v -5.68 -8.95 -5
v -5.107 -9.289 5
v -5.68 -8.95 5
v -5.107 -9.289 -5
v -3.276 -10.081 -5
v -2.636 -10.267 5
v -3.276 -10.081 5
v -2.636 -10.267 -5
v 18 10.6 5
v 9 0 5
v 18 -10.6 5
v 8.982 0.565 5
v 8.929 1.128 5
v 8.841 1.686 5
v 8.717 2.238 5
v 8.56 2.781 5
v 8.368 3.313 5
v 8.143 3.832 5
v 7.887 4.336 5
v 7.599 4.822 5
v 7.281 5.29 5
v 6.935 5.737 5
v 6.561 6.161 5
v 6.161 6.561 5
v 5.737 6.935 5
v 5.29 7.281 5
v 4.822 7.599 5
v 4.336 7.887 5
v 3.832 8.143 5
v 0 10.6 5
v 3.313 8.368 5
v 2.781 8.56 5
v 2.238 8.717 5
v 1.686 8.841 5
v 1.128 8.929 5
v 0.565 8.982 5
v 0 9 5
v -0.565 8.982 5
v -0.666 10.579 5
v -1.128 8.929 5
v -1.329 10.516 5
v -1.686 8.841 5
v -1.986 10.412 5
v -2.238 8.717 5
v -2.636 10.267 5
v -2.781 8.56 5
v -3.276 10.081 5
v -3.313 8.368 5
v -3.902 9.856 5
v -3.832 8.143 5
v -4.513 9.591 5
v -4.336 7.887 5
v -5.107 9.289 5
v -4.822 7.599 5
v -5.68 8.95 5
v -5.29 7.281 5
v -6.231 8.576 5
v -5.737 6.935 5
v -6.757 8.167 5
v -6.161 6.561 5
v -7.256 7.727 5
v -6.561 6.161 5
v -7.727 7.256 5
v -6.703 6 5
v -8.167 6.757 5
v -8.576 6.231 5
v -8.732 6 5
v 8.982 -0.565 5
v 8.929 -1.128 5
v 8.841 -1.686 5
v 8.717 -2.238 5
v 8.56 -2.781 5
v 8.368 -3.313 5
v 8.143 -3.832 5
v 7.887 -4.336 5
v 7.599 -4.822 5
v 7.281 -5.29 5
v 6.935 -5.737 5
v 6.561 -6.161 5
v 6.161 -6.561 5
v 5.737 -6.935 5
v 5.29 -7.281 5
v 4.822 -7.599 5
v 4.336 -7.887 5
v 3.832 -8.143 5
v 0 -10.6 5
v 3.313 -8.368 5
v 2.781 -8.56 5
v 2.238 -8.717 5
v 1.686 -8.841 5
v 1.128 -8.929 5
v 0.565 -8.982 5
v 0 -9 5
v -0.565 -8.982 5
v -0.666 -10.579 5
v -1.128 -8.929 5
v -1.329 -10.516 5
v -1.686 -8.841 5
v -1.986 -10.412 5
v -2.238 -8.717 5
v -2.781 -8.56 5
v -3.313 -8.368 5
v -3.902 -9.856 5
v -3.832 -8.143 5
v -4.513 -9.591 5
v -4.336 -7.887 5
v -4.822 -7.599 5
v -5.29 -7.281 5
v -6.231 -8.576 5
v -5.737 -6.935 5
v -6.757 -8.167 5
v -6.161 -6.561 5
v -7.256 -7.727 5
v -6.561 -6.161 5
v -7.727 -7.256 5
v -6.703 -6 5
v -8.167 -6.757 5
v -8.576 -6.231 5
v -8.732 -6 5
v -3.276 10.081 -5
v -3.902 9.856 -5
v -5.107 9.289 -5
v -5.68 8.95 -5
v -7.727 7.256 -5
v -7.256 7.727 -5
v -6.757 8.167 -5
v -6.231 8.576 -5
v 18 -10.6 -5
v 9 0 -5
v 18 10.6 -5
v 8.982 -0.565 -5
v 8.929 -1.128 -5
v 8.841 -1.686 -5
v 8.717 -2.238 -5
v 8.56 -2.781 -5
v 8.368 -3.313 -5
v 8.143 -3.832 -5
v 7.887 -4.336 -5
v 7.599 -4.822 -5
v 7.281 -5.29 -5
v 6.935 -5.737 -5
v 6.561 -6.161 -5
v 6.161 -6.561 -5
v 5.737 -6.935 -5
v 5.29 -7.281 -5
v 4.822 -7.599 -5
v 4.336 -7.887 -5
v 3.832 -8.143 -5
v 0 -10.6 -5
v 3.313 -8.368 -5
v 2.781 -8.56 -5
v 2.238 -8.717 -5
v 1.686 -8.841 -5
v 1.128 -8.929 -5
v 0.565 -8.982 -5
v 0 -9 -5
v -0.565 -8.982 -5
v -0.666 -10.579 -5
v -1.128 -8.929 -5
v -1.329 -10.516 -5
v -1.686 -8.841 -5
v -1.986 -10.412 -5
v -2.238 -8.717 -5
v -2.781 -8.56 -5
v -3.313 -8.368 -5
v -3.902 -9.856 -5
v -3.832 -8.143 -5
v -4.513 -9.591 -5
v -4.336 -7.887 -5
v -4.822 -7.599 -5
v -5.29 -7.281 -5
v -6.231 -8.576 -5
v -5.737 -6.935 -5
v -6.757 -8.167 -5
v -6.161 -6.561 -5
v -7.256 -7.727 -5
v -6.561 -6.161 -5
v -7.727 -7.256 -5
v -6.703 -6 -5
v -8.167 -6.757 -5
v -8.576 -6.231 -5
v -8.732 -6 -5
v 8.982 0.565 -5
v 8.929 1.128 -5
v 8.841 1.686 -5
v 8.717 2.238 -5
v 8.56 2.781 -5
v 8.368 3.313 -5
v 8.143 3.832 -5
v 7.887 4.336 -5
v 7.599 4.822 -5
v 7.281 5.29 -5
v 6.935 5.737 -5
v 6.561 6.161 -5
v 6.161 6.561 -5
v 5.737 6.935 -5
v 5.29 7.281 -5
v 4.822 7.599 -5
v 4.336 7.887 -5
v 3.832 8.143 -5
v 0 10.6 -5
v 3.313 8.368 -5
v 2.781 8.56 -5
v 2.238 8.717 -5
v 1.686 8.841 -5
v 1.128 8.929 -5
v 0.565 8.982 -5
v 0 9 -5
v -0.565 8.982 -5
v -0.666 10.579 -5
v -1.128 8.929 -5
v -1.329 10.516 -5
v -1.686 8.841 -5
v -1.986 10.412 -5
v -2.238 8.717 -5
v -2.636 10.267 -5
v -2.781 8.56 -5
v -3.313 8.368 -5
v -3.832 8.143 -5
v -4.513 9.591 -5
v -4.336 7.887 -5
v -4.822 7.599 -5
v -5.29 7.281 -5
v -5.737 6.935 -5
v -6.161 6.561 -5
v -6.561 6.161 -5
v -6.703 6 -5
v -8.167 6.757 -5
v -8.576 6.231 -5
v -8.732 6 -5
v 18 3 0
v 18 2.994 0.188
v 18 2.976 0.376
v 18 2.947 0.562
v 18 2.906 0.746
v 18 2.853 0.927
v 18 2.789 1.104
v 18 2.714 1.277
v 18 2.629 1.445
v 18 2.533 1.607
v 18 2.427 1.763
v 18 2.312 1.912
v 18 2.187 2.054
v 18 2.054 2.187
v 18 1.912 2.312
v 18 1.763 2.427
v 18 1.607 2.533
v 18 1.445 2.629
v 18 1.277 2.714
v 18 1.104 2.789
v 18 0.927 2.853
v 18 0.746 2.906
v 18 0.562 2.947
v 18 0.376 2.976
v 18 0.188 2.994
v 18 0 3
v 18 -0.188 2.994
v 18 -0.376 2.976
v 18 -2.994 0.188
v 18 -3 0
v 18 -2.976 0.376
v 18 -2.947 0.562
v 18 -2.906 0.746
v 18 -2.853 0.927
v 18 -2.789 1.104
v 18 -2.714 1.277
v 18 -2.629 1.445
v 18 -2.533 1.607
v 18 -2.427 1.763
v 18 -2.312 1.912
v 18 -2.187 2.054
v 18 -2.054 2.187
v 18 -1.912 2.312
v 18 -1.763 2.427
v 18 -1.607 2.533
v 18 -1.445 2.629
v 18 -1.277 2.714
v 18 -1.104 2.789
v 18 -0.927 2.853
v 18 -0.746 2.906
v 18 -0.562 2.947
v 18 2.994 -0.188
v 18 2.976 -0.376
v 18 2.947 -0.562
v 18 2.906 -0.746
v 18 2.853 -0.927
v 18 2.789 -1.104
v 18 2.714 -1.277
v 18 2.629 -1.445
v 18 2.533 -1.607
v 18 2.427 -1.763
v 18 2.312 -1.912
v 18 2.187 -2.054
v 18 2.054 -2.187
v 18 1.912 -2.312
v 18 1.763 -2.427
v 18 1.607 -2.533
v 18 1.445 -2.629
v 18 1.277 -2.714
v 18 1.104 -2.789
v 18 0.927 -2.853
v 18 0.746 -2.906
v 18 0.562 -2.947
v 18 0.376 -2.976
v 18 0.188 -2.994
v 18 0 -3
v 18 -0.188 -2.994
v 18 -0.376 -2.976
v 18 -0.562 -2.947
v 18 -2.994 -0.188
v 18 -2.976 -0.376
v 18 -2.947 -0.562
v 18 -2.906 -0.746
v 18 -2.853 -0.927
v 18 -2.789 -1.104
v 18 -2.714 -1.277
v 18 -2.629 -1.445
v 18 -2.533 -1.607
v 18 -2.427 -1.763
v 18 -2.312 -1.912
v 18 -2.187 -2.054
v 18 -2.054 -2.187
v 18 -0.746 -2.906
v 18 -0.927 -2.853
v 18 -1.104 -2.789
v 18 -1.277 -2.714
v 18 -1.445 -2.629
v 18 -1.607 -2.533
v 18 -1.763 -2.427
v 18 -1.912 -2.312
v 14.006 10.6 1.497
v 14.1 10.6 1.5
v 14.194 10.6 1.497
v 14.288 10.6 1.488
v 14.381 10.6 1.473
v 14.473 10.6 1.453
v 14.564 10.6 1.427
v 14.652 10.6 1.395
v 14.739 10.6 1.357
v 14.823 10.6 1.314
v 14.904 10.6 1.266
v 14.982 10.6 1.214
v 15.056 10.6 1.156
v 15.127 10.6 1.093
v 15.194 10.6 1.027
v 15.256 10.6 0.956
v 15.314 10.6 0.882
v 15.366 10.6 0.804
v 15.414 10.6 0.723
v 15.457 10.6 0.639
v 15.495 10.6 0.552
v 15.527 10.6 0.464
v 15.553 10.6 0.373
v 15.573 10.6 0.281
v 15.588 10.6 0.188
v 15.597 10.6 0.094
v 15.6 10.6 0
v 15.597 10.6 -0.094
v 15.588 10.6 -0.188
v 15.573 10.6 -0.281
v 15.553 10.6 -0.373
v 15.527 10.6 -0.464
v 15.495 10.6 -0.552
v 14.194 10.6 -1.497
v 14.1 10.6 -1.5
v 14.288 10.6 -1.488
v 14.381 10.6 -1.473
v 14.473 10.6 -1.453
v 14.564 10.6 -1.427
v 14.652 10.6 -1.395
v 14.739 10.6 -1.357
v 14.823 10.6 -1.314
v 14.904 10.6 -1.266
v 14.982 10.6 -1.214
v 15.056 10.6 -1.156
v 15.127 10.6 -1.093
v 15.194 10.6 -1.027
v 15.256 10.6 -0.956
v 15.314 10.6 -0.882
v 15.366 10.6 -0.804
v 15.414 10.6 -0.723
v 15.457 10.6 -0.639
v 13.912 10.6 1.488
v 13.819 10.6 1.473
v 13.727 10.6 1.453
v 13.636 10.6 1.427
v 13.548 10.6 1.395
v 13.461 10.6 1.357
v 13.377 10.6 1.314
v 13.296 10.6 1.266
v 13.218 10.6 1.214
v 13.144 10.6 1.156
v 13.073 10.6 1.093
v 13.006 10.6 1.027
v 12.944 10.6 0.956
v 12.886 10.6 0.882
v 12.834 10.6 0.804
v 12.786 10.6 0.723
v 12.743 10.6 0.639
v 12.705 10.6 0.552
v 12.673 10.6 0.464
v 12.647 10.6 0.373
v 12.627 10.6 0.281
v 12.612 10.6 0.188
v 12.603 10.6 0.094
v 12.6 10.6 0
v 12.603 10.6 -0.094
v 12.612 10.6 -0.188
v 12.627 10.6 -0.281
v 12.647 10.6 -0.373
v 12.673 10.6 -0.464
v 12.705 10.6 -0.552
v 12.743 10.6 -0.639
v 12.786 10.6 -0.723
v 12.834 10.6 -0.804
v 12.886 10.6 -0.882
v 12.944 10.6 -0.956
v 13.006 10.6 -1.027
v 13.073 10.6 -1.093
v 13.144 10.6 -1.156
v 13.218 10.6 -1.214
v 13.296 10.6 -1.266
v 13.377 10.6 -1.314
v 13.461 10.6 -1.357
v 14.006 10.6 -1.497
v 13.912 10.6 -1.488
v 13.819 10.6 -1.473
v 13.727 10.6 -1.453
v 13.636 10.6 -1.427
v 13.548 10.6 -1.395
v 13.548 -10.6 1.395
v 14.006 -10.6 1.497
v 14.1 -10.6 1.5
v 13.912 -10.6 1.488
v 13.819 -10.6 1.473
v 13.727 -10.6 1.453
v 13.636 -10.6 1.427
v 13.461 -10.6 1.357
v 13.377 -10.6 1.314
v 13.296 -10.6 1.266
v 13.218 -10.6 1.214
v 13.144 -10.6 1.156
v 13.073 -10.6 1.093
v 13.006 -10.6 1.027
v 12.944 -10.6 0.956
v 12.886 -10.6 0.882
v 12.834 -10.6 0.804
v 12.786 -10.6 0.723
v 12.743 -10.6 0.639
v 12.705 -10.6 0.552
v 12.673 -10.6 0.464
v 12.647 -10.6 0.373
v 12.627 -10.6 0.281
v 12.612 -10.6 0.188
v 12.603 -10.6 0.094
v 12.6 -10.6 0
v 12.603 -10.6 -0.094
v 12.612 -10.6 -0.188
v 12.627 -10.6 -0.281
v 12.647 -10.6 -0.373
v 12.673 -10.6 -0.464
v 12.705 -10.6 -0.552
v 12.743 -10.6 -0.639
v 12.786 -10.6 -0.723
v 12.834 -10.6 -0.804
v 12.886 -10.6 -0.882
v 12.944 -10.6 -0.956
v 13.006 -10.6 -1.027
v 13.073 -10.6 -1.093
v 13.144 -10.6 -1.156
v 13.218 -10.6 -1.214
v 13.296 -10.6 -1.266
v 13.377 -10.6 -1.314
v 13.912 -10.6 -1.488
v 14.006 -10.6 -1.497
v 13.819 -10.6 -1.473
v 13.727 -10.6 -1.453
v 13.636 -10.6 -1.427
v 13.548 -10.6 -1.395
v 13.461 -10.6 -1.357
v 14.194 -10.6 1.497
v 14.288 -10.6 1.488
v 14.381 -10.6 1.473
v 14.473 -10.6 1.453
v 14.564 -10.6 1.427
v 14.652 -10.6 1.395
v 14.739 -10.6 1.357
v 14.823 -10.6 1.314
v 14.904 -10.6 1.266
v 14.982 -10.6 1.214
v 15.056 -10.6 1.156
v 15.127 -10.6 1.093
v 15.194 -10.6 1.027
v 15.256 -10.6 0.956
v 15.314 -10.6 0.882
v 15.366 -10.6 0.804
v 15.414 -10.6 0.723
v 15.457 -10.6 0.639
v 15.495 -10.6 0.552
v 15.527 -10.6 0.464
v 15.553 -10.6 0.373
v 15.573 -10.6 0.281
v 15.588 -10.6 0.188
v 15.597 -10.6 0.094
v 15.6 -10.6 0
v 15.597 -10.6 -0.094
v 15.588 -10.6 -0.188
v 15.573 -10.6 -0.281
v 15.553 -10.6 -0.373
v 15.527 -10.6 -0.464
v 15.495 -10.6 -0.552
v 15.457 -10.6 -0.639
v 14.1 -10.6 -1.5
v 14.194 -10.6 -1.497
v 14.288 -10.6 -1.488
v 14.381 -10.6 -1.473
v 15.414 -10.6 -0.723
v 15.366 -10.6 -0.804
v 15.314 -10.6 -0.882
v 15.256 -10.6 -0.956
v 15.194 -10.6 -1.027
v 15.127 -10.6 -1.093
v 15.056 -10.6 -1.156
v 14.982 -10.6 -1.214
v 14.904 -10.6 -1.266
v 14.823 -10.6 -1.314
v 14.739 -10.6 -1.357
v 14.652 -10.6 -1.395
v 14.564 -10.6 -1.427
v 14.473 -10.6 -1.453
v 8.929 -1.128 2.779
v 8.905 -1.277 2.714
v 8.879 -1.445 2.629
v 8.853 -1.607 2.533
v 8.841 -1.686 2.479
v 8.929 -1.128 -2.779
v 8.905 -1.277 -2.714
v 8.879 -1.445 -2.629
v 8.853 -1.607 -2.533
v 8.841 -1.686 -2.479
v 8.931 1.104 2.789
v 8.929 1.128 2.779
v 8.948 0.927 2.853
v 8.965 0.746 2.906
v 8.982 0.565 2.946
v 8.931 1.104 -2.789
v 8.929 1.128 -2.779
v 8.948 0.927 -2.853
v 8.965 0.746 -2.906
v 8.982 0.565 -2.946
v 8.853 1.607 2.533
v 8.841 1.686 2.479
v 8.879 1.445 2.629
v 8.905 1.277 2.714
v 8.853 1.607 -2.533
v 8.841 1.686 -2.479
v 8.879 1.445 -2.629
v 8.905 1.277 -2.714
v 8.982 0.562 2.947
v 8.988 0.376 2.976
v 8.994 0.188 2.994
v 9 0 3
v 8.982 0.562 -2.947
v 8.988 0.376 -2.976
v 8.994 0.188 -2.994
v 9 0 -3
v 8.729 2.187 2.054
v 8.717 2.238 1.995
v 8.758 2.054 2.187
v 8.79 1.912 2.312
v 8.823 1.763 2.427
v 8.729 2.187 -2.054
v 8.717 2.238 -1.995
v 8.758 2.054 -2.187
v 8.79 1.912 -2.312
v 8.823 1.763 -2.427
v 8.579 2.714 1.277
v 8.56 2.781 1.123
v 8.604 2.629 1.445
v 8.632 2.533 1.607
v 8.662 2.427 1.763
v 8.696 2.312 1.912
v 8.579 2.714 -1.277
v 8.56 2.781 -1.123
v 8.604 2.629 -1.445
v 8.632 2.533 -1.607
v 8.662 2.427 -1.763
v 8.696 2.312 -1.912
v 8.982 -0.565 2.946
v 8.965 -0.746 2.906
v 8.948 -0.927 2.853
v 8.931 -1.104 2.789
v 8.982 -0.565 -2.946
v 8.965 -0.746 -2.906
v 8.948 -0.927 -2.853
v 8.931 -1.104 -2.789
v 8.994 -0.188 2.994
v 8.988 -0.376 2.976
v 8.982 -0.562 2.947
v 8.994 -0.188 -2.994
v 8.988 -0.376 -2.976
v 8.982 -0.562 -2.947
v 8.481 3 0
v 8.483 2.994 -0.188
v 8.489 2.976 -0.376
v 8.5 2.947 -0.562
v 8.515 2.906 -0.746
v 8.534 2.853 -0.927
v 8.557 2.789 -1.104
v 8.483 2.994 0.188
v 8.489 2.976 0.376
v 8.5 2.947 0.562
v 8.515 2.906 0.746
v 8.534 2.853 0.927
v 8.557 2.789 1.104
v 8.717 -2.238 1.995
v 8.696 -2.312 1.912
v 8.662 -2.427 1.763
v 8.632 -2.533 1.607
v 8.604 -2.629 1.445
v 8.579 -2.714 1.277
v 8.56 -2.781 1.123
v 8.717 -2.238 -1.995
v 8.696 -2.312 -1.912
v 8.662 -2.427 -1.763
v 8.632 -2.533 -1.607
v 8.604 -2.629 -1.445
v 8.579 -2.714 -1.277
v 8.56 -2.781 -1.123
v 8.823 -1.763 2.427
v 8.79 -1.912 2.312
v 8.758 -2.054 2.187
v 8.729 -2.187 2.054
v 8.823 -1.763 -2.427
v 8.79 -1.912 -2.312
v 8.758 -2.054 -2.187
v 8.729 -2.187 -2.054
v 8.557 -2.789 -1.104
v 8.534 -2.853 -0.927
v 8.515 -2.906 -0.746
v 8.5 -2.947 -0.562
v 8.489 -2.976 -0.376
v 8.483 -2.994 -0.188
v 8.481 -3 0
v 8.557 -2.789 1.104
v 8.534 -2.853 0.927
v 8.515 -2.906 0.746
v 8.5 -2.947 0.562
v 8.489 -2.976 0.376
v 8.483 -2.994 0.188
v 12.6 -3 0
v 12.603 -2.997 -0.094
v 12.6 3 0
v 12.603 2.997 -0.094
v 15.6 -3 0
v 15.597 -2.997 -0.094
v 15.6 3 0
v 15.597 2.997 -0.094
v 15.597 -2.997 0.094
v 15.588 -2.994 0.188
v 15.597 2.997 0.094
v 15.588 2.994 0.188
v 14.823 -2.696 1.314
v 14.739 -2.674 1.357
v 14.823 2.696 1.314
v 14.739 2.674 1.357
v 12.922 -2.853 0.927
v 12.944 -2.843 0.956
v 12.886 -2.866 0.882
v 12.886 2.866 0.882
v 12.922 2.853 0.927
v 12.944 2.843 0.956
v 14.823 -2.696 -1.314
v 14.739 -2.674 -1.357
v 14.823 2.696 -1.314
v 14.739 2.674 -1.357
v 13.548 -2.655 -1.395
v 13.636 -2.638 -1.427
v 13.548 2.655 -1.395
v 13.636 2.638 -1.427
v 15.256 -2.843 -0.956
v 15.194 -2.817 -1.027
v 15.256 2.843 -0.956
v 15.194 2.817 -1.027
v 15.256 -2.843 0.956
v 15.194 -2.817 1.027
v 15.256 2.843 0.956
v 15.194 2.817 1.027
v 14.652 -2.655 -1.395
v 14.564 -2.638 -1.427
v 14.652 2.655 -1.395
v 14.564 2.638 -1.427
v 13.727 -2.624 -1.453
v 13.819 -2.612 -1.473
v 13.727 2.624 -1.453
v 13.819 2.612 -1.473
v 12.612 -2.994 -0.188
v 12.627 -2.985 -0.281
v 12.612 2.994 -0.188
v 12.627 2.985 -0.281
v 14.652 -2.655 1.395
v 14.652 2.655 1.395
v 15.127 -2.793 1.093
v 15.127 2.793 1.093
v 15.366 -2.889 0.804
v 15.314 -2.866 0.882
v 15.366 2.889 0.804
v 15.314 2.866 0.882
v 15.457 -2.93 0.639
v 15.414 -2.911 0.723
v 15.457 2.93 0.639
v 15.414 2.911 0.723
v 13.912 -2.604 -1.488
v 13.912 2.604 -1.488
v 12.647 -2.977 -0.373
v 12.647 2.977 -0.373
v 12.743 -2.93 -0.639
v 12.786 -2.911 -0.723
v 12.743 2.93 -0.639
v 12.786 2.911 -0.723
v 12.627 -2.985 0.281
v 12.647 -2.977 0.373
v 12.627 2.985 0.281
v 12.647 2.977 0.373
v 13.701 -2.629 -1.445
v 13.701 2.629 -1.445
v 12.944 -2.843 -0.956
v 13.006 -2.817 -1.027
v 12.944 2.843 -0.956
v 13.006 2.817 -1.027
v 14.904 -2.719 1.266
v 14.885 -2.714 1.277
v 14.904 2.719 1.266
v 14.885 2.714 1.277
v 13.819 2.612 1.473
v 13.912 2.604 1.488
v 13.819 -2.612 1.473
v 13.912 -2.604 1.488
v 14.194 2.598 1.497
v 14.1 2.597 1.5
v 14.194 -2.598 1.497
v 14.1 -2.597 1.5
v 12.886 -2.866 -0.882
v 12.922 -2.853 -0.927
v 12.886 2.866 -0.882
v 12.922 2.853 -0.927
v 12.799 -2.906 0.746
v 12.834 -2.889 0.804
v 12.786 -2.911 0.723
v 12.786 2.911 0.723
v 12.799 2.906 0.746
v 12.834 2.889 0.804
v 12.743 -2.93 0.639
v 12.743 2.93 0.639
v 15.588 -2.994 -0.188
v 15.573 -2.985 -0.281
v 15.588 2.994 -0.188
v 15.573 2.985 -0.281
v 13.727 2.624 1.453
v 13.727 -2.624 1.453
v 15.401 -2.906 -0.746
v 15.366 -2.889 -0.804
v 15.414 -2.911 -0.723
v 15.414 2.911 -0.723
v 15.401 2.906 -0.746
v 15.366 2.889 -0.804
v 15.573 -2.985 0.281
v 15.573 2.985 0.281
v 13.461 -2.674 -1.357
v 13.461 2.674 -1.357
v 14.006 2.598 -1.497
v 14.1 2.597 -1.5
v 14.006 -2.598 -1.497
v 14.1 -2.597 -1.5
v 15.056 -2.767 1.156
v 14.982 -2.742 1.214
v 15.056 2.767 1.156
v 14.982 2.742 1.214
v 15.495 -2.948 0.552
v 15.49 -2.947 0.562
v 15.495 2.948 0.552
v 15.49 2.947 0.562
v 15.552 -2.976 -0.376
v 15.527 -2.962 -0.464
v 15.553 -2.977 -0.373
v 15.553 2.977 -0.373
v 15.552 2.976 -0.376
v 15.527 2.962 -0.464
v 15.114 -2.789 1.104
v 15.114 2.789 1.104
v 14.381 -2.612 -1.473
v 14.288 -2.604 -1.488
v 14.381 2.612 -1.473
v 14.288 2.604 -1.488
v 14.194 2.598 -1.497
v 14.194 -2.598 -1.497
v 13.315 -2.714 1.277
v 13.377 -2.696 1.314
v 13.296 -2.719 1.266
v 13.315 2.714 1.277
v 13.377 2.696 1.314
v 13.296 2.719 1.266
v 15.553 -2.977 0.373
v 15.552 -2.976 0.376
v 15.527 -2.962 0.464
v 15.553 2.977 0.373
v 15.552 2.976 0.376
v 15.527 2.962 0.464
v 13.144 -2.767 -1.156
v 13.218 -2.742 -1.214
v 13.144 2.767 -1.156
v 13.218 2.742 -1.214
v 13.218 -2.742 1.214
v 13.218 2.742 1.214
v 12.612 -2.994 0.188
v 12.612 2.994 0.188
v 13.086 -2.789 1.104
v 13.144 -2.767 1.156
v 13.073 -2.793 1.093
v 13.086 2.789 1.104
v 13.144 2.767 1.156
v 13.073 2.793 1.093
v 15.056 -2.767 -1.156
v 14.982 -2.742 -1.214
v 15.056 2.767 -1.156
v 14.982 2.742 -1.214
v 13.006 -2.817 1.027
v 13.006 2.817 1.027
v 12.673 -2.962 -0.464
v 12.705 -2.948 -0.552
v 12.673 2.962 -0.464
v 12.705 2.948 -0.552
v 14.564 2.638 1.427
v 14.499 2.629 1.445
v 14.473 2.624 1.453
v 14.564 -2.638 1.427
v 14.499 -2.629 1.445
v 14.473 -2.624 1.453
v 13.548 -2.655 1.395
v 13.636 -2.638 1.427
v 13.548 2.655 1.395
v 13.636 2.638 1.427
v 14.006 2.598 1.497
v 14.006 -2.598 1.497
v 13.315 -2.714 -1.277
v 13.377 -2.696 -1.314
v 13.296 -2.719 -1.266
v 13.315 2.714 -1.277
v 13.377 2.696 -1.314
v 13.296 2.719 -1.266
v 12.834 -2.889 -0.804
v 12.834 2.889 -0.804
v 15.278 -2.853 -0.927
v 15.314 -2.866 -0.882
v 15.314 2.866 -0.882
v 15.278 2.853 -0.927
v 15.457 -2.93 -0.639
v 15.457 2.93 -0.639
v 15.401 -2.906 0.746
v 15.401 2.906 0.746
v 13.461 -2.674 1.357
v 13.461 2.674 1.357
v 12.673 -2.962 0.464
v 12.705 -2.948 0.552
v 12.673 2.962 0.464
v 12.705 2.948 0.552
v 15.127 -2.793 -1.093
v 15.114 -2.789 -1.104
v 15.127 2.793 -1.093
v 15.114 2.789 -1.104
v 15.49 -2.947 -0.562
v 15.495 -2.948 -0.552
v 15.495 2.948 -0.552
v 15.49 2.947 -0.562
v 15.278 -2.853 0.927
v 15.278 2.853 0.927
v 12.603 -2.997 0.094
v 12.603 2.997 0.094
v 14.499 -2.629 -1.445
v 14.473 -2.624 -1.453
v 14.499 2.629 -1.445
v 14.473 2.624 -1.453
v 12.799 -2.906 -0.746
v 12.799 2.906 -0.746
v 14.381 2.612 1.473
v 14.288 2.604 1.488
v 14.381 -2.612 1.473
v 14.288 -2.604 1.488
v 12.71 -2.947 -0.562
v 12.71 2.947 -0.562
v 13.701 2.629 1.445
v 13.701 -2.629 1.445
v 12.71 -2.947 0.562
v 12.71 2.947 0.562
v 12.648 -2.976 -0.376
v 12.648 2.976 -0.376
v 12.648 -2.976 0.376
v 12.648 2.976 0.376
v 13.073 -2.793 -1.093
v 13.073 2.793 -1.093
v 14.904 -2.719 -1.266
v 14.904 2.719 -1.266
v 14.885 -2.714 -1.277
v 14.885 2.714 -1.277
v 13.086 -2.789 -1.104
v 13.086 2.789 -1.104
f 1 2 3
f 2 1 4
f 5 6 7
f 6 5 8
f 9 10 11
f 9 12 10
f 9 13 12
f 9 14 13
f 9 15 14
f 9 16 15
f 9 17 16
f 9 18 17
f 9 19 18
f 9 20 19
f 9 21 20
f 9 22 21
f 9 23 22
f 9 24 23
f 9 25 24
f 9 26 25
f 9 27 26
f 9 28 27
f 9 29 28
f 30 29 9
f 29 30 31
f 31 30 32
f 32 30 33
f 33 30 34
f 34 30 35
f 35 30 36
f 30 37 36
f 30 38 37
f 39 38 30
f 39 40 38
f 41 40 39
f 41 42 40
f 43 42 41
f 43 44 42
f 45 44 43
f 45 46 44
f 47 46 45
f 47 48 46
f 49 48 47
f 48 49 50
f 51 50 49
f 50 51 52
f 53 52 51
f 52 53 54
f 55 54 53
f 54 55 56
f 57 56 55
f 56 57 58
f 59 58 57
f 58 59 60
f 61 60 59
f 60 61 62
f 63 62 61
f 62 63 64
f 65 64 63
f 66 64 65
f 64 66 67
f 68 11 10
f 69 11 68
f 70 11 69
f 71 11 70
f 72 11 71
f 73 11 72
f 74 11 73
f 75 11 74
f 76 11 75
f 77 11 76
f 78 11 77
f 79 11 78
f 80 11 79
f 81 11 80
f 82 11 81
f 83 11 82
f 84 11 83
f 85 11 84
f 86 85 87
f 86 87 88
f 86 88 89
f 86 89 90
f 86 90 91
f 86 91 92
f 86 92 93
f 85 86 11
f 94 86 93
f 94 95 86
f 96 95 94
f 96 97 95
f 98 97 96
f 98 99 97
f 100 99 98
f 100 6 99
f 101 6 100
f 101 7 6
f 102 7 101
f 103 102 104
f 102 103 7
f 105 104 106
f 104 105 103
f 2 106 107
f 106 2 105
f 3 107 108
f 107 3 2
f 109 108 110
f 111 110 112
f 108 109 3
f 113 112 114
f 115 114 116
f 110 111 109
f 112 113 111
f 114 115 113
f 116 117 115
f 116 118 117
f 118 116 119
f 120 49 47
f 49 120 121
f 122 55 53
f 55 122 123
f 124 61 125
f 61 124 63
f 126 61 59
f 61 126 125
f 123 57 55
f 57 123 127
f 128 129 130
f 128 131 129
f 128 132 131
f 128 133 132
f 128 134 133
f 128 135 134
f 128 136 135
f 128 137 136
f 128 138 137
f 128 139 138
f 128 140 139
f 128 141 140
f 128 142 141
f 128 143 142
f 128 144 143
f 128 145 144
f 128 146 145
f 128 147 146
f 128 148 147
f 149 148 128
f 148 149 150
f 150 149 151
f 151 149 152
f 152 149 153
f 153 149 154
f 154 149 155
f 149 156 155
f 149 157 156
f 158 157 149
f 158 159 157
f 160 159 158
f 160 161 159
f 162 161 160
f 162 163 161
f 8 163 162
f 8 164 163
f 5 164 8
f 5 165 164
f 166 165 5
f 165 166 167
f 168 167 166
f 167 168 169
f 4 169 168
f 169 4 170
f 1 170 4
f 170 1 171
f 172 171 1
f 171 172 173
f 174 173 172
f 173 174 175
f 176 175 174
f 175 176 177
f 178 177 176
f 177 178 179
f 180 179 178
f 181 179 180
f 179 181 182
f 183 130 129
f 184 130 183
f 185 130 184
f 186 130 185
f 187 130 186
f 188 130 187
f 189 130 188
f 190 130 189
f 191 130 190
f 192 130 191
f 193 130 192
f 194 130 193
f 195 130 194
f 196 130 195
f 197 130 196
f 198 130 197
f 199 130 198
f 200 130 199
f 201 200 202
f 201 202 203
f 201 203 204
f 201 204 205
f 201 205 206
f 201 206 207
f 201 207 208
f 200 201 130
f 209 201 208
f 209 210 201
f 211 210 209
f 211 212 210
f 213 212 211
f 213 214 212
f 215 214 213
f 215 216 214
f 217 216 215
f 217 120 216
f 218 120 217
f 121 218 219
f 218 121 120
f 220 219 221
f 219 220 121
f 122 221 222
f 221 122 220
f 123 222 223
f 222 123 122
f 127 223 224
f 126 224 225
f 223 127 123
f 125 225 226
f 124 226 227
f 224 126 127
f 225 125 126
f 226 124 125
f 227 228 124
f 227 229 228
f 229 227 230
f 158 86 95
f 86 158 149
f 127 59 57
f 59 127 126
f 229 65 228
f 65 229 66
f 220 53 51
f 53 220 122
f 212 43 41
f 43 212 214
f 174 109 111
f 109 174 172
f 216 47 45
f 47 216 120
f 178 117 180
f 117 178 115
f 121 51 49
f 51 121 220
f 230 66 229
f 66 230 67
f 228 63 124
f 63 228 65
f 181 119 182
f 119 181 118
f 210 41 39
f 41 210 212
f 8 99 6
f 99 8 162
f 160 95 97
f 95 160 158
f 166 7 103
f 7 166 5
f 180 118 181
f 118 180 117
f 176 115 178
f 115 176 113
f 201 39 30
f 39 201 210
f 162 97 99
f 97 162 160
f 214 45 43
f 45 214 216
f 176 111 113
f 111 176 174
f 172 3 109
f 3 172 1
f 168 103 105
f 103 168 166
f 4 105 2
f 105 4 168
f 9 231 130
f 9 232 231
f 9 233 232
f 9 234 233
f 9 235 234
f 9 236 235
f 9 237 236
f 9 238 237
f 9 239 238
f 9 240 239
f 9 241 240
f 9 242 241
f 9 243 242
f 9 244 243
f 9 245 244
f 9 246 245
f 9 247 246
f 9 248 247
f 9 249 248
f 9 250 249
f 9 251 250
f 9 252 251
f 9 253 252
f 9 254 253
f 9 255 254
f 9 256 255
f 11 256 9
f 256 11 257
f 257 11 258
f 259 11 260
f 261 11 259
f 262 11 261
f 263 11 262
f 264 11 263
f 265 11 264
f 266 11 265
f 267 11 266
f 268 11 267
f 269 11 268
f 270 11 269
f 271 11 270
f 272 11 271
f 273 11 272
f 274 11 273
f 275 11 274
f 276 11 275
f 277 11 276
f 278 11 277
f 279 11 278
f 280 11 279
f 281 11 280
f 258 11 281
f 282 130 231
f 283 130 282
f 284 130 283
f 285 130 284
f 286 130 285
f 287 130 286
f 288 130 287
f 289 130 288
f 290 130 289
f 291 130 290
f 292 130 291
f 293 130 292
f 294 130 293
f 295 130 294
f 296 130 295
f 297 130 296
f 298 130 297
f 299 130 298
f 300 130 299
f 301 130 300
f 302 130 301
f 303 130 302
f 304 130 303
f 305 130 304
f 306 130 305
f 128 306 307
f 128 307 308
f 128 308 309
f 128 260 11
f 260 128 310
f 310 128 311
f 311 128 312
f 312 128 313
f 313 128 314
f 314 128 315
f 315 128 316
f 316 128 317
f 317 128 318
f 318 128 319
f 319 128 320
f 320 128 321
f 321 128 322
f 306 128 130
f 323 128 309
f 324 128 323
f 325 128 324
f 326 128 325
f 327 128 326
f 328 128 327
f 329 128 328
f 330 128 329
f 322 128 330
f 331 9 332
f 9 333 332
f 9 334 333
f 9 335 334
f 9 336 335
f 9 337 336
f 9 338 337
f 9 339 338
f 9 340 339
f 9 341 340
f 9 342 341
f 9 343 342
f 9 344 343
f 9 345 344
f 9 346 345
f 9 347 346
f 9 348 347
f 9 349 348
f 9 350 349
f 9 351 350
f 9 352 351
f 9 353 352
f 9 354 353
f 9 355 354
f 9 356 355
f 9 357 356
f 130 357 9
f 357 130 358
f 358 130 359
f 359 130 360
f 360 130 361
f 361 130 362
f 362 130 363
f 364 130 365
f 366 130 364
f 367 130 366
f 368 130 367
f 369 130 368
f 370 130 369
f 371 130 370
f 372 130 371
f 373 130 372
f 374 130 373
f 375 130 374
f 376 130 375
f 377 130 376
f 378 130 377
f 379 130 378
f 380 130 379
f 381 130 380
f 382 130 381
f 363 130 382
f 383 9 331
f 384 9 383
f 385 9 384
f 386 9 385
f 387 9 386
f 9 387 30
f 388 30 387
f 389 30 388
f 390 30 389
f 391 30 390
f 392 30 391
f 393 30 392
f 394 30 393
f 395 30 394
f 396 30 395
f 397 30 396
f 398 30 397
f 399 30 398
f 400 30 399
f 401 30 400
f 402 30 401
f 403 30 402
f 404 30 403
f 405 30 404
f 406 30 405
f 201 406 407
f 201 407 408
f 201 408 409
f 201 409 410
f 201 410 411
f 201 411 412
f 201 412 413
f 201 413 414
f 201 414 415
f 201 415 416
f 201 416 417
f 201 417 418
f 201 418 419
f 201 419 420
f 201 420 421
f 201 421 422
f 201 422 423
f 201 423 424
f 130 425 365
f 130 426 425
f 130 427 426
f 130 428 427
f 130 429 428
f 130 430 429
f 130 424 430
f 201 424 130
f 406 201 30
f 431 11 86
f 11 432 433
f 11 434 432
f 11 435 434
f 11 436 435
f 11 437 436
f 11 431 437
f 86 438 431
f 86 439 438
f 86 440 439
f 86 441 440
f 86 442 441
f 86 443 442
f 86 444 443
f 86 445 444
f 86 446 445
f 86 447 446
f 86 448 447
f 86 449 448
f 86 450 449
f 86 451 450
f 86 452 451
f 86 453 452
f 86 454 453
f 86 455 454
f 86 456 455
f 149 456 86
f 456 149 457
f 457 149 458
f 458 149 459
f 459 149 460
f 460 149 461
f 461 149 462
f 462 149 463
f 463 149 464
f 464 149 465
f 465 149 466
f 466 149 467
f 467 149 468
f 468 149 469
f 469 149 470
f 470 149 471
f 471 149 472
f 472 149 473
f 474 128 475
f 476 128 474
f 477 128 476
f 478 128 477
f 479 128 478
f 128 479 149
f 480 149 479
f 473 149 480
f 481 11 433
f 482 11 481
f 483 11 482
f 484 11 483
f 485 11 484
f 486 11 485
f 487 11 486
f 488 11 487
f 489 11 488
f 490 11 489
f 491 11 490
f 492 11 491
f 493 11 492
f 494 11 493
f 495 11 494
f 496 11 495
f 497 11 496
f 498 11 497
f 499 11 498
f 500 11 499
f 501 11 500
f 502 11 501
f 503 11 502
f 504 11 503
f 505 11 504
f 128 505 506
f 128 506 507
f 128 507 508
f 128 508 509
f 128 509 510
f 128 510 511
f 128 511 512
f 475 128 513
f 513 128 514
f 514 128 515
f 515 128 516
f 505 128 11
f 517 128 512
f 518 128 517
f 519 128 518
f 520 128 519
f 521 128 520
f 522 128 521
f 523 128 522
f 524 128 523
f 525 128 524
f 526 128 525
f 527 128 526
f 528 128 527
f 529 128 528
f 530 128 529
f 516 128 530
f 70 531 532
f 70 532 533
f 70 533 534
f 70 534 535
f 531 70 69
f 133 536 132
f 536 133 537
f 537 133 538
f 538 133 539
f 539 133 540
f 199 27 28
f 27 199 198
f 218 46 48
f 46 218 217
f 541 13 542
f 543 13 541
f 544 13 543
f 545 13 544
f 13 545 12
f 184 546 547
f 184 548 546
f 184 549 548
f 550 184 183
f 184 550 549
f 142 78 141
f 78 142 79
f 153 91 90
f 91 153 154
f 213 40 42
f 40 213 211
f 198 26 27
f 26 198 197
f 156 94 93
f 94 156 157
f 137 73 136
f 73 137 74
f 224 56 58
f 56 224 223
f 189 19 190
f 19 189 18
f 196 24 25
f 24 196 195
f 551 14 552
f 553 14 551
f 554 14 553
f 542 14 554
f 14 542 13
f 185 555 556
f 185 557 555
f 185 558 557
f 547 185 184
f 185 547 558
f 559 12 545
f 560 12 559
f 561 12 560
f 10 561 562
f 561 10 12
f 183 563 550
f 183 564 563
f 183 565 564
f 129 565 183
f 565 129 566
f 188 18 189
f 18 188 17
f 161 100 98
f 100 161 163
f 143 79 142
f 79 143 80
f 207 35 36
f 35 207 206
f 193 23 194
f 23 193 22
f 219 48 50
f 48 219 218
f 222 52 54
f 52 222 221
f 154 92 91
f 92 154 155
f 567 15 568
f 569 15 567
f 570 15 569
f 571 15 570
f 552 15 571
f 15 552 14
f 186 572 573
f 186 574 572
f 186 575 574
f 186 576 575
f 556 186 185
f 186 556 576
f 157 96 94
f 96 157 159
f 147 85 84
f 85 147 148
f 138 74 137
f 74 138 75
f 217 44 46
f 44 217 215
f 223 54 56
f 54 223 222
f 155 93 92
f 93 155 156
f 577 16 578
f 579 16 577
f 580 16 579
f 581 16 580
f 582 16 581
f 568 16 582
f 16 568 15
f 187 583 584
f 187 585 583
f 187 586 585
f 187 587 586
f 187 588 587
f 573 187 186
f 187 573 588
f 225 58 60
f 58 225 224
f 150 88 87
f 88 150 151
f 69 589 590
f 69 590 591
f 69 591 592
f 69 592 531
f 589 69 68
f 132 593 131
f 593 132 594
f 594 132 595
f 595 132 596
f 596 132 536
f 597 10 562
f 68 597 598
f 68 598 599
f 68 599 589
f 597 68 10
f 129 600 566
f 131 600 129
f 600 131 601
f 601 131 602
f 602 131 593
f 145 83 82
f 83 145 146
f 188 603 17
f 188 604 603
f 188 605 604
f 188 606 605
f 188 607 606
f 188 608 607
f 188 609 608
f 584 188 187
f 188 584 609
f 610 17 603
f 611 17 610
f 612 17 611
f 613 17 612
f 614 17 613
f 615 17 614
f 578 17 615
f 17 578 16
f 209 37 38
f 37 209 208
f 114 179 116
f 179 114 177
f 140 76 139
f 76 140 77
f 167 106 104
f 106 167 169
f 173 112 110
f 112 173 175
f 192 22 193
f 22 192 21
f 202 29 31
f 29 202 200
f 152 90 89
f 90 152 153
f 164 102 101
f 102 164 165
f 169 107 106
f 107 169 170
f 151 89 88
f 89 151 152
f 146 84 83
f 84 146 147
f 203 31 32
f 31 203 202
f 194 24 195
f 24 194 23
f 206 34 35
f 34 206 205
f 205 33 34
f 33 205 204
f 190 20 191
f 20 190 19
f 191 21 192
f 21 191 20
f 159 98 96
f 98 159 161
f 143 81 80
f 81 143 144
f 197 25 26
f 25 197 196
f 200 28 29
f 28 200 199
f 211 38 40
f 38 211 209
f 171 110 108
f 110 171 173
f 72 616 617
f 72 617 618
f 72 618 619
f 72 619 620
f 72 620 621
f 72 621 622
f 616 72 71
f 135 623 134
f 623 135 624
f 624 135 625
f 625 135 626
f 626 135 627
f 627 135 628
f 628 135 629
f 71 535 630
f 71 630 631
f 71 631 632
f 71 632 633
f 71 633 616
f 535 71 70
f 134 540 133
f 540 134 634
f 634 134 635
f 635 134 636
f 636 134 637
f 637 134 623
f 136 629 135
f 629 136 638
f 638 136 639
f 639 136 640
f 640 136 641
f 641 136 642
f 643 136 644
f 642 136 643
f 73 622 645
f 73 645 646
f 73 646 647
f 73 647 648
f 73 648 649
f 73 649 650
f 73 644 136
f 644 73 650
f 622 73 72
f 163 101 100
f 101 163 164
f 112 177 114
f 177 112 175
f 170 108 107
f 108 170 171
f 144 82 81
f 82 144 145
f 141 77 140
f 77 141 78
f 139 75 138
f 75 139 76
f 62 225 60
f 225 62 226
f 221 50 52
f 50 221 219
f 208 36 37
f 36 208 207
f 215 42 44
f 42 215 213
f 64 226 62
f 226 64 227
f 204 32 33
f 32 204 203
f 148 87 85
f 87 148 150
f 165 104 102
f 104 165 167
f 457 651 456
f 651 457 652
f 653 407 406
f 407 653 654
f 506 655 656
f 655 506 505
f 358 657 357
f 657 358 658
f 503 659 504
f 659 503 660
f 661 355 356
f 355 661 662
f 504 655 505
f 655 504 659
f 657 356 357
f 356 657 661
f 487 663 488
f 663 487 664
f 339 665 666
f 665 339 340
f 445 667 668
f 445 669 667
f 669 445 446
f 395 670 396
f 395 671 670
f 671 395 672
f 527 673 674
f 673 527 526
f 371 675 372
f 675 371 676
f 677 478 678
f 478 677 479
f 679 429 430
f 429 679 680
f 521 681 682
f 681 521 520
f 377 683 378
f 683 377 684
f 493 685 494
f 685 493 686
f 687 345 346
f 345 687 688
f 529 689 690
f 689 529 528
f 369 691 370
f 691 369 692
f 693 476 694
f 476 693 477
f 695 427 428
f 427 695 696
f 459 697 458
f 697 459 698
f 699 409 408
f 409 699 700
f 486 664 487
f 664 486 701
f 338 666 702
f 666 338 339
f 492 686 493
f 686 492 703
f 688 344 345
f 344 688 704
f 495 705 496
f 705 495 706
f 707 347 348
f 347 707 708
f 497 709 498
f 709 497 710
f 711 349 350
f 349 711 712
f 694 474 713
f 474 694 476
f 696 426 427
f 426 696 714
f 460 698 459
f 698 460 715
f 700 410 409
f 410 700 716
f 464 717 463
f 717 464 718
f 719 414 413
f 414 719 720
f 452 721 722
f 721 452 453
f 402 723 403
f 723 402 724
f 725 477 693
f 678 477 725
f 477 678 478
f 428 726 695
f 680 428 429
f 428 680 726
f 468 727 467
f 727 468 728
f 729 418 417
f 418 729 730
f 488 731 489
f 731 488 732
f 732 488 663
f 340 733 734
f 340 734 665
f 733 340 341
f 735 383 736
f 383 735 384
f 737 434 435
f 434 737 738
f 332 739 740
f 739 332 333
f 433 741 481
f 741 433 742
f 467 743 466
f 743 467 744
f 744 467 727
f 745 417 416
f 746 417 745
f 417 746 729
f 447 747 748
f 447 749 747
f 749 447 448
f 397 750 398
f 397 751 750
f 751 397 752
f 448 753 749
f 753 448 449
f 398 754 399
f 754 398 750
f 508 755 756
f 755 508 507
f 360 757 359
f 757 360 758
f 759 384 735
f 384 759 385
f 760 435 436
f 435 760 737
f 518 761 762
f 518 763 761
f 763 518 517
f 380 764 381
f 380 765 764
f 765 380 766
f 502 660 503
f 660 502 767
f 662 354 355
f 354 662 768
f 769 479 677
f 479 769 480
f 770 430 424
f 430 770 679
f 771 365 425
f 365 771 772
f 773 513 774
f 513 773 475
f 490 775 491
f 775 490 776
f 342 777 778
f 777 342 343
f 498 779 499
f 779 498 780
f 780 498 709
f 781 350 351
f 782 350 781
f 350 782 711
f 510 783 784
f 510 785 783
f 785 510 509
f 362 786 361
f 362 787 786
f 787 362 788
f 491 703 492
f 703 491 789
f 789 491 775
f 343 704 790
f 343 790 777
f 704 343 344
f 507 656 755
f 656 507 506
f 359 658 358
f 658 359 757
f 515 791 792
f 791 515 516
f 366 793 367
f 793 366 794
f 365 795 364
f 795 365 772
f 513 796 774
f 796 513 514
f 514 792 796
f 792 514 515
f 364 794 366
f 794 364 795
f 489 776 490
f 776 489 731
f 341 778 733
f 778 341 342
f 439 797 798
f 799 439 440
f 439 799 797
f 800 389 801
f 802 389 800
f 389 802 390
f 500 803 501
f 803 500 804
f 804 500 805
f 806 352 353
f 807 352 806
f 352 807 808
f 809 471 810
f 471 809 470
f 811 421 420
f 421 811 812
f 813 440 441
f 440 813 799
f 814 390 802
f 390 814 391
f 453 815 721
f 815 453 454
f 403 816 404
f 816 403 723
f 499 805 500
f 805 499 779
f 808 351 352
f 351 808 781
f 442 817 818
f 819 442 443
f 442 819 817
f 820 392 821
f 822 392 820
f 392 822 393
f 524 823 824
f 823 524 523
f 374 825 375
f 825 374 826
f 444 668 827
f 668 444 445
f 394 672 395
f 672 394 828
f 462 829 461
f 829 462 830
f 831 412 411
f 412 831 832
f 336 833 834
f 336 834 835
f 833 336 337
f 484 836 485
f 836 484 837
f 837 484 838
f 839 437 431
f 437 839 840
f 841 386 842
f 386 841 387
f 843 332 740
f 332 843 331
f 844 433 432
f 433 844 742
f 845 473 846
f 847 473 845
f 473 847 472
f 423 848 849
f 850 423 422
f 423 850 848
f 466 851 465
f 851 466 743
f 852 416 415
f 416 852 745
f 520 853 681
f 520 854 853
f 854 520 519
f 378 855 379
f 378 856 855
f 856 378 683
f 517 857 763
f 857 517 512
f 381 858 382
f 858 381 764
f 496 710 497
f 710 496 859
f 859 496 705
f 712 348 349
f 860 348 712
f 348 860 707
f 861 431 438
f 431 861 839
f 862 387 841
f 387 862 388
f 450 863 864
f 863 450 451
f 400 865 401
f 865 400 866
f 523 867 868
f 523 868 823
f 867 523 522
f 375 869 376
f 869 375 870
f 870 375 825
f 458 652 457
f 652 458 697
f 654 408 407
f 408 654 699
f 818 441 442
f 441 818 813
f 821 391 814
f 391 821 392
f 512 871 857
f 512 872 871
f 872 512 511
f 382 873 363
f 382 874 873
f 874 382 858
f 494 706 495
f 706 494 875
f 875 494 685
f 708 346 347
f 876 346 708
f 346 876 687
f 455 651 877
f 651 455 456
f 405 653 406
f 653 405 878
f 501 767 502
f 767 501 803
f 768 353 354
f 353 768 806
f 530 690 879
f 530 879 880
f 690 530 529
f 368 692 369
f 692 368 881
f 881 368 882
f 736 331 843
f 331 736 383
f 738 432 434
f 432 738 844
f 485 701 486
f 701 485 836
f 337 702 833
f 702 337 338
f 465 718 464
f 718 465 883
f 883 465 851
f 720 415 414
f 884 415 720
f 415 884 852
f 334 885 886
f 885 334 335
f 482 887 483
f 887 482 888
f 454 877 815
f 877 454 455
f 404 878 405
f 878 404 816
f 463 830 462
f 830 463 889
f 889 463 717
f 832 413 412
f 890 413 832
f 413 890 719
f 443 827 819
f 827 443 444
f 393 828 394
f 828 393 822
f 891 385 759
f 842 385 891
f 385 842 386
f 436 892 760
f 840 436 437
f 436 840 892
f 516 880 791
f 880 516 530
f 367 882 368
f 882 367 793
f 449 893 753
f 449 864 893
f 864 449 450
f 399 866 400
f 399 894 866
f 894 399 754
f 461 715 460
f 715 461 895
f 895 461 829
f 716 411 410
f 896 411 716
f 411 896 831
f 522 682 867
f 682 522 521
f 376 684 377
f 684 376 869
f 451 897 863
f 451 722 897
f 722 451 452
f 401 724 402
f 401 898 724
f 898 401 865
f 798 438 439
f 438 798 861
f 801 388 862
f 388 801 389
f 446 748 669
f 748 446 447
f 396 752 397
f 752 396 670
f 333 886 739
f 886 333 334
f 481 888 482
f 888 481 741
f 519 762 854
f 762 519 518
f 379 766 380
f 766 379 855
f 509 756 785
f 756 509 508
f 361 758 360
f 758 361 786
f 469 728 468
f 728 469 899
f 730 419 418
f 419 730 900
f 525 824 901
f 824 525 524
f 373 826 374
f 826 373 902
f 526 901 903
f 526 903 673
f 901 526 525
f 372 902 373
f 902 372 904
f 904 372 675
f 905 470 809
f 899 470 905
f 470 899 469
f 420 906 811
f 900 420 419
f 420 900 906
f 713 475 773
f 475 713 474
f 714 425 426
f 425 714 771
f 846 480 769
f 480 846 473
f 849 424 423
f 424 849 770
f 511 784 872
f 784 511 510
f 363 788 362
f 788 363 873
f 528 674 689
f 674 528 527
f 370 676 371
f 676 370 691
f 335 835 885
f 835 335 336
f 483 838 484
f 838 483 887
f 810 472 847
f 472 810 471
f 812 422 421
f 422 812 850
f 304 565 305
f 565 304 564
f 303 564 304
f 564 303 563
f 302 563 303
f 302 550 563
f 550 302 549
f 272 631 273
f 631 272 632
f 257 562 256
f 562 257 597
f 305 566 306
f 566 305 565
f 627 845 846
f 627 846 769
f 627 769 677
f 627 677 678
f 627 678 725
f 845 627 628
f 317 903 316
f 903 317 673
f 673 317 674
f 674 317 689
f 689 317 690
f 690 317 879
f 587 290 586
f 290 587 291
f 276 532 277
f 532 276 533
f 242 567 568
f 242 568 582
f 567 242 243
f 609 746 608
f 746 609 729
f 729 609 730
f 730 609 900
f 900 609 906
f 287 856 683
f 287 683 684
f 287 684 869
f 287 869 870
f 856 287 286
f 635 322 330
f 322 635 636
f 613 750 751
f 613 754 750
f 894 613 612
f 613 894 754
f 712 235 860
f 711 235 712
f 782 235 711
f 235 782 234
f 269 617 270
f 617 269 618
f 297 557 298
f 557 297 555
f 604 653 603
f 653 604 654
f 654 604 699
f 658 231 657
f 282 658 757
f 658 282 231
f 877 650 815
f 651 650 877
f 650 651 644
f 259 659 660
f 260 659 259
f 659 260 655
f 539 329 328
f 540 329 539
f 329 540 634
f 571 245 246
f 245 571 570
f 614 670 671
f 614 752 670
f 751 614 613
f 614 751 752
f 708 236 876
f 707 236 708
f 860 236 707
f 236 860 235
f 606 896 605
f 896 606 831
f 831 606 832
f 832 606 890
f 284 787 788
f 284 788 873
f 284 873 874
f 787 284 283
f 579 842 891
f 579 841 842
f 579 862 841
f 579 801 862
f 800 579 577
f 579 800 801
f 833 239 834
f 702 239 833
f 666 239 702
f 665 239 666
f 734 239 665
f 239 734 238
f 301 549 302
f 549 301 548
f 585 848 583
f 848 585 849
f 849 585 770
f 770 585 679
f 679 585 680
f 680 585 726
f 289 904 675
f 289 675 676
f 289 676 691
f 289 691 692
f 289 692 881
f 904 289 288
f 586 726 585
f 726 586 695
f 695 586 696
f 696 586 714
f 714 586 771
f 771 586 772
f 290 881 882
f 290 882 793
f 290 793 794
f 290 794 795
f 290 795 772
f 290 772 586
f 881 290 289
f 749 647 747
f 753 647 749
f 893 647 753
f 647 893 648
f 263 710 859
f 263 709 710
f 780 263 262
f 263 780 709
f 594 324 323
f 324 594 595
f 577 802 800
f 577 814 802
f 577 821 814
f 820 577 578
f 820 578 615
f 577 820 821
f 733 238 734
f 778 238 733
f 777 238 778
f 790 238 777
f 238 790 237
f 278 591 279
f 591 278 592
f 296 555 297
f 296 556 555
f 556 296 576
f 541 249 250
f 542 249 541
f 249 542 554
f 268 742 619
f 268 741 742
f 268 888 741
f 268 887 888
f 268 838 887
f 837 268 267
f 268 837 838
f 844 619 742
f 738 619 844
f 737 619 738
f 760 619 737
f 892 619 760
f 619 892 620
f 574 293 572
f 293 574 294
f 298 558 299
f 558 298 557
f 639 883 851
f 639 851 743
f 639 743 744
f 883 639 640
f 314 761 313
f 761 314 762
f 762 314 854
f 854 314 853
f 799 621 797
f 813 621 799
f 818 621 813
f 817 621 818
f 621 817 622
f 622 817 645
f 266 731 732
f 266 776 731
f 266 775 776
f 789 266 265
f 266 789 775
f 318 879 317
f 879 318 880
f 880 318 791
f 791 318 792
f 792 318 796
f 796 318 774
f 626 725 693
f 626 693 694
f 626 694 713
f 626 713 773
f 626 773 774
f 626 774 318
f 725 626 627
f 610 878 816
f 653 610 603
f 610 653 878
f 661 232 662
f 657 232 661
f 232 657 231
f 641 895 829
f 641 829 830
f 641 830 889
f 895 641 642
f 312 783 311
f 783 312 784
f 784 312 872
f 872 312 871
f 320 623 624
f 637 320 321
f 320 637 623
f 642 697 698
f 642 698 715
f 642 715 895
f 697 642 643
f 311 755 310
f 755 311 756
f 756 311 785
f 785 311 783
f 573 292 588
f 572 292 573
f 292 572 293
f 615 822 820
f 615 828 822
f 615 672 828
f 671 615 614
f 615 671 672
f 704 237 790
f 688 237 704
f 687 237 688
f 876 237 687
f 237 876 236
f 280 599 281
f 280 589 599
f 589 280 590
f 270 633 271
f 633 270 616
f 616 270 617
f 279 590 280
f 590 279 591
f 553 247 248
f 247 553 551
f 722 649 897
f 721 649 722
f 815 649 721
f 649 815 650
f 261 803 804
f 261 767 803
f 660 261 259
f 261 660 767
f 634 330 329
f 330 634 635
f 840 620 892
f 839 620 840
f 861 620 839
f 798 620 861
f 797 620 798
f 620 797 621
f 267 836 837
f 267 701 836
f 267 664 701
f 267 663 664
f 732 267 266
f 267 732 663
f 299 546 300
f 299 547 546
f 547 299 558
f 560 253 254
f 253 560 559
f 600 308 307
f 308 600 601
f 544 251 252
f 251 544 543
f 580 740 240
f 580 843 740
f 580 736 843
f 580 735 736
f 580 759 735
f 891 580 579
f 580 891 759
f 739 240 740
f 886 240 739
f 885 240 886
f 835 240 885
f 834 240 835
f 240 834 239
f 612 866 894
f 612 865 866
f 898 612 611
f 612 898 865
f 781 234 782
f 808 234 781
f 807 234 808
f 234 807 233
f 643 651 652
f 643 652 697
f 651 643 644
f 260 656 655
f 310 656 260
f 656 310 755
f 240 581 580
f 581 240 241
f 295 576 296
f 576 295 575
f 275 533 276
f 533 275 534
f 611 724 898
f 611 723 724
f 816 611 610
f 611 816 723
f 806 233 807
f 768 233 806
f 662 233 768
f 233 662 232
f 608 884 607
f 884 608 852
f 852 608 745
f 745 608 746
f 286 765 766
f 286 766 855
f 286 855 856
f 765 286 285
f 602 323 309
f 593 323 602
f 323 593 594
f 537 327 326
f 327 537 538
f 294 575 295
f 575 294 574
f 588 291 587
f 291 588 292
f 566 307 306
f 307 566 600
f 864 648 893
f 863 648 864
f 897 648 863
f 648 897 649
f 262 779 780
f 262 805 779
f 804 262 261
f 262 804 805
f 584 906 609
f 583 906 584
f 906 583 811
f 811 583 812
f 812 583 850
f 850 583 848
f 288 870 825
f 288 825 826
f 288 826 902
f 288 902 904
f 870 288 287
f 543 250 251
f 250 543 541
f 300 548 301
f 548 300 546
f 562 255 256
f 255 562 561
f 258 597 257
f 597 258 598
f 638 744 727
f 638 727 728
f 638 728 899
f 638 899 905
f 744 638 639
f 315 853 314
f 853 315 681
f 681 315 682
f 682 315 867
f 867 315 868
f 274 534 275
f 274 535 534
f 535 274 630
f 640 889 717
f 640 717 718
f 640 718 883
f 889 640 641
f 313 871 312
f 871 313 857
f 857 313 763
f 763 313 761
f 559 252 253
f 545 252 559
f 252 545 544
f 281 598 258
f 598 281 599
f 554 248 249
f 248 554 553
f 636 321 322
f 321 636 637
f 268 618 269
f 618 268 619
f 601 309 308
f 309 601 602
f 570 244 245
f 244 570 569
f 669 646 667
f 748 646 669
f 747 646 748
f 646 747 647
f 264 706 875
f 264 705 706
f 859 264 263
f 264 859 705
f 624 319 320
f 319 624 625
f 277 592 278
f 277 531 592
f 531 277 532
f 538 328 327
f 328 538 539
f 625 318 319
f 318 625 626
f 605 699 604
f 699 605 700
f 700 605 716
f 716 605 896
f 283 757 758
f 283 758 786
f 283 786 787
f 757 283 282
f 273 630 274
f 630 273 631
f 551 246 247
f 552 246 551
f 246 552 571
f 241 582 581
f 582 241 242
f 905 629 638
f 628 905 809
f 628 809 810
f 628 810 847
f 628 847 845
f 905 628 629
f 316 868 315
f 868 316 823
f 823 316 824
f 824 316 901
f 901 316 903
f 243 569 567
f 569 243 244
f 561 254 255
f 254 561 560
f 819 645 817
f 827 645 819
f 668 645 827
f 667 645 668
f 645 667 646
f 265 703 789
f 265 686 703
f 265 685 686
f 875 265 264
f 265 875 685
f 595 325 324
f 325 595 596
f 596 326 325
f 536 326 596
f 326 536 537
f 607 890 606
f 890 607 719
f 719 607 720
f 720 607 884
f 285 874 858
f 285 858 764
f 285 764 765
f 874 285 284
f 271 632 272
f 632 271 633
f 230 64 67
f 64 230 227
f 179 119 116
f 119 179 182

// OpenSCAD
$fn = 100;

thi = 1.6;    // arm thickness
dia = 18;     // pipe diameter
hei = 9;      // plastic height over boom
eob = 3.5;    // element-over-boom placement
gap = 12;     // gap between arms
length = 10;  // total length

e=0.05;

difference() {
    union() {
        // main arms
        cylinder(d=dia+2*thi, h=length, center=true);
        
        // top block
        translate([hei,0,0])
        cube([2*hei,dia+2*thi,length], center=true);
    }
    
    // hole for pipe
    cylinder(d=dia, h=length+2*e, center=true);

    // hole for element
    rotate([90,0,0])
    translate([dia/2+thi+eob,0,0])
    cylinder(d=3,h=dia+2*thi+2*e, center=true);
    
    // top hole
    rotate([0,90,0])
    translate([0,0,dia+hei])
    cylinder(d=6,h=dia*2+hei*2, center=true);
    
    // gap between arms
    translate([-hei,0,0])
    cube([2*hei,gap,length+2*e], center=true);
    
}
    
